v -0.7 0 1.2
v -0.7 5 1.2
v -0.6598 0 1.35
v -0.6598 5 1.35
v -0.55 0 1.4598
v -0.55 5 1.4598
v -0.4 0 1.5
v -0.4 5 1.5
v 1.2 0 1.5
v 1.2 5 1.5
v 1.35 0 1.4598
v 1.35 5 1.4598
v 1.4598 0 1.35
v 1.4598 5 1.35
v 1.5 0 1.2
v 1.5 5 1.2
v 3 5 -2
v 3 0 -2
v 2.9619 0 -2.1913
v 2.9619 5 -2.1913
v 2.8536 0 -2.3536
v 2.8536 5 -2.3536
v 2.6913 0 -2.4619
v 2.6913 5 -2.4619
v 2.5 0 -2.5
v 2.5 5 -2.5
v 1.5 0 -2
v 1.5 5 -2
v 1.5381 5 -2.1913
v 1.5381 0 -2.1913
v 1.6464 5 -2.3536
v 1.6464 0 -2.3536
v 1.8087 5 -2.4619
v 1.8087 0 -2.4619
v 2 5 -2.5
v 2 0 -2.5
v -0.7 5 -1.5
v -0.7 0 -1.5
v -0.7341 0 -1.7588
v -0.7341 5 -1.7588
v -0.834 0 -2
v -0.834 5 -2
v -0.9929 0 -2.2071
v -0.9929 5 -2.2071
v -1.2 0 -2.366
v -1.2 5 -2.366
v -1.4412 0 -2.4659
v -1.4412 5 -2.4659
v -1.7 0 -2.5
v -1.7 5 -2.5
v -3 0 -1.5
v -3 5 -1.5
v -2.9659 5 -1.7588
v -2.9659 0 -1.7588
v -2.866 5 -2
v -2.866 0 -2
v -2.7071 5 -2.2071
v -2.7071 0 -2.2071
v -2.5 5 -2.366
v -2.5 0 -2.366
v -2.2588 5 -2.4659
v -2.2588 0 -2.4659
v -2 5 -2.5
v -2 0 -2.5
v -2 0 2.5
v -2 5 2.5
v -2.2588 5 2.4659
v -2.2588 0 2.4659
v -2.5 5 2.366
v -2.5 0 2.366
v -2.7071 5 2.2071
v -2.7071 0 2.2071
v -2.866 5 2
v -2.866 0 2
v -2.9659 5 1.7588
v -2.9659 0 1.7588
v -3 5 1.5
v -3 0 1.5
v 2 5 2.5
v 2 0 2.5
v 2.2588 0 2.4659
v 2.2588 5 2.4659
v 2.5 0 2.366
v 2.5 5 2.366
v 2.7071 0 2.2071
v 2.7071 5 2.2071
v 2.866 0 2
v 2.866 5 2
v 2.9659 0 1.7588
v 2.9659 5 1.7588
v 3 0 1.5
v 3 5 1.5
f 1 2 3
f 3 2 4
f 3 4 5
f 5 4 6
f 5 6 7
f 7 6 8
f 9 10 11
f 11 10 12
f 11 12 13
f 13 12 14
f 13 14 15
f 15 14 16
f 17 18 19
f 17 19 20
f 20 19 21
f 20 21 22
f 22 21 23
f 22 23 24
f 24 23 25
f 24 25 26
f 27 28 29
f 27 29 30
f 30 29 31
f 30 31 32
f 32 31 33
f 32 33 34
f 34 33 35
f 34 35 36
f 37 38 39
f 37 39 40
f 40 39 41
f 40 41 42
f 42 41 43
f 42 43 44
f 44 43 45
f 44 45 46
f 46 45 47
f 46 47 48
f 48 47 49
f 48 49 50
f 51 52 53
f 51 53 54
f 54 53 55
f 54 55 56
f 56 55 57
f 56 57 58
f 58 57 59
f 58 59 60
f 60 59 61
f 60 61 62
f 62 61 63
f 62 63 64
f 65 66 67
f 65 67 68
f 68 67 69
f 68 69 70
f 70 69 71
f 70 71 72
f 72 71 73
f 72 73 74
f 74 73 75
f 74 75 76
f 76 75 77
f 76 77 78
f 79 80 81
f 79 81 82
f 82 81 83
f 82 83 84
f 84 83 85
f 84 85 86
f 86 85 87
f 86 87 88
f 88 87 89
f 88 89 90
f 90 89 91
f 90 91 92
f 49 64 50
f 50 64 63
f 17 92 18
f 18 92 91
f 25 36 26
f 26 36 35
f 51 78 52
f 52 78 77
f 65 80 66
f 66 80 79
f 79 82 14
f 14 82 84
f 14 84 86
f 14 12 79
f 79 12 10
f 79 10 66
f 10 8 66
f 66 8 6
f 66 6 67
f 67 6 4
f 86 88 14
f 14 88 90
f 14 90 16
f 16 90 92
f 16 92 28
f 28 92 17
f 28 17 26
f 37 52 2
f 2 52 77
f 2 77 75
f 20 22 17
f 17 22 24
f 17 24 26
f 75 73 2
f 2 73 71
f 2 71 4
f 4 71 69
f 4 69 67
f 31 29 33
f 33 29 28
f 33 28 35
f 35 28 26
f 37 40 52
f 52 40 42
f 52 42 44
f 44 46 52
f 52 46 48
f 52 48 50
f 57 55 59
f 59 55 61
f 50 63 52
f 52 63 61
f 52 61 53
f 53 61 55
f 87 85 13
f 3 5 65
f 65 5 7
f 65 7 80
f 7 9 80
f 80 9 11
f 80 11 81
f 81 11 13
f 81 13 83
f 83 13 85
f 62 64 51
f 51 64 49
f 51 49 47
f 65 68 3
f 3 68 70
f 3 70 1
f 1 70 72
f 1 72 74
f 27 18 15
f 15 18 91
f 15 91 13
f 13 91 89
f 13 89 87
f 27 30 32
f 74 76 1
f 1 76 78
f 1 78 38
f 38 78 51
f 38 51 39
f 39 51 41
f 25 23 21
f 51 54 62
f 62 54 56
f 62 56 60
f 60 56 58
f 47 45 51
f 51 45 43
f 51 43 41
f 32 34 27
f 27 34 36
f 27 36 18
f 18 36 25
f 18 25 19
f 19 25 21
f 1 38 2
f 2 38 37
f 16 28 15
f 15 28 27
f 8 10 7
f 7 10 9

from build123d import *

# Parameters (mm, degrees)
ESBO_O1_W                = 6
ESBO_O1_H                = 5
RESSALTO_EXTRUS_O1_DEPTH = 5
ESBO_O3_W                = 2.2
ESBO_O3_H                = 4
CORTE_EXTRUS_O1_DEPTH    = 5
FILETE1_R                = 1
FILETE2_R                = 1
FILETE3_R                = 1
FILETE4_R                = 1
FILETE5_R                = 0.5
FILETE6_R                = 0.5
FILETE7_R                = 0.3
FILETE8_R                = 0.3


with BuildPart() as part:
    # Esboço1 → Ressalto-extrusão1 (new body)
    with BuildSketch(Plane(origin=(0, 0, 0), x_dir=(1, 0, 0), z_dir=(0, 1, 0))):
        Rectangle(ESBO_O1_W, ESBO_O1_H)
    extrude(amount=RESSALTO_EXTRUS_O1_DEPTH)

    # Esboço3 → Corte-extrusão1 (cut)
    with BuildSketch(Plane(origin=(0, 5, 0), x_dir=(1, 0, 0), z_dir=(0, 1, 0))):
        with Locations((0.4, 0.5)):
            Rectangle(ESBO_O3_W, ESBO_O3_H)
    extrude(amount=-CORTE_EXTRUS_O1_DEPTH, mode=Mode.SUBTRACT)

    # Filete1
    filete1_edges = [part.edges().sort_by_distance(p)[0] for p in [
        (3, 2.5, 2.5),
    ]]
    fillet(filete1_edges, radius=FILETE1_R)

    # Filete2
    filete2_edges = [part.edges().sort_by_distance(p)[0] for p in [
        (-3, 2.5, 2.5),
    ]]
    fillet(filete2_edges, radius=FILETE2_R)

    # Filete3
    filete3_edges = [part.edges().sort_by_distance(p)[0] for p in [
        (-3, 2.5, -2.5),
    ]]
    fillet(filete3_edges, radius=FILETE3_R)

    # Filete4
    filete4_edges = [part.edges().sort_by_distance(p)[0] for p in [
        (-0.7, 2.5, -2.5),
    ]]
    fillet(filete4_edges, radius=FILETE4_R)

    # Filete5
    filete5_edges = [part.edges().sort_by_distance(p)[0] for p in [
        (1.5, 2.5, -2.5),
    ]]
    fillet(filete5_edges, radius=FILETE5_R)

    # Filete6
    filete6_edges = [part.edges().sort_by_distance(p)[0] for p in [
        (3, 2.5, -2.5),
    ]]
    fillet(filete6_edges, radius=FILETE6_R)

    # Filete7
    filete7_edges = [part.edges().sort_by_distance(p)[0] for p in [
        (1.5, 2.5, 1.5),
    ]]
    fillet(filete7_edges, radius=FILETE7_R)

    # Filete8
    filete8_edges = [part.edges().sort_by_distance(p)[0] for p in [
        (-0.7, 2.5, 1.5),
    ]]
    fillet(filete8_edges, radius=FILETE8_R)


solid = part.part
